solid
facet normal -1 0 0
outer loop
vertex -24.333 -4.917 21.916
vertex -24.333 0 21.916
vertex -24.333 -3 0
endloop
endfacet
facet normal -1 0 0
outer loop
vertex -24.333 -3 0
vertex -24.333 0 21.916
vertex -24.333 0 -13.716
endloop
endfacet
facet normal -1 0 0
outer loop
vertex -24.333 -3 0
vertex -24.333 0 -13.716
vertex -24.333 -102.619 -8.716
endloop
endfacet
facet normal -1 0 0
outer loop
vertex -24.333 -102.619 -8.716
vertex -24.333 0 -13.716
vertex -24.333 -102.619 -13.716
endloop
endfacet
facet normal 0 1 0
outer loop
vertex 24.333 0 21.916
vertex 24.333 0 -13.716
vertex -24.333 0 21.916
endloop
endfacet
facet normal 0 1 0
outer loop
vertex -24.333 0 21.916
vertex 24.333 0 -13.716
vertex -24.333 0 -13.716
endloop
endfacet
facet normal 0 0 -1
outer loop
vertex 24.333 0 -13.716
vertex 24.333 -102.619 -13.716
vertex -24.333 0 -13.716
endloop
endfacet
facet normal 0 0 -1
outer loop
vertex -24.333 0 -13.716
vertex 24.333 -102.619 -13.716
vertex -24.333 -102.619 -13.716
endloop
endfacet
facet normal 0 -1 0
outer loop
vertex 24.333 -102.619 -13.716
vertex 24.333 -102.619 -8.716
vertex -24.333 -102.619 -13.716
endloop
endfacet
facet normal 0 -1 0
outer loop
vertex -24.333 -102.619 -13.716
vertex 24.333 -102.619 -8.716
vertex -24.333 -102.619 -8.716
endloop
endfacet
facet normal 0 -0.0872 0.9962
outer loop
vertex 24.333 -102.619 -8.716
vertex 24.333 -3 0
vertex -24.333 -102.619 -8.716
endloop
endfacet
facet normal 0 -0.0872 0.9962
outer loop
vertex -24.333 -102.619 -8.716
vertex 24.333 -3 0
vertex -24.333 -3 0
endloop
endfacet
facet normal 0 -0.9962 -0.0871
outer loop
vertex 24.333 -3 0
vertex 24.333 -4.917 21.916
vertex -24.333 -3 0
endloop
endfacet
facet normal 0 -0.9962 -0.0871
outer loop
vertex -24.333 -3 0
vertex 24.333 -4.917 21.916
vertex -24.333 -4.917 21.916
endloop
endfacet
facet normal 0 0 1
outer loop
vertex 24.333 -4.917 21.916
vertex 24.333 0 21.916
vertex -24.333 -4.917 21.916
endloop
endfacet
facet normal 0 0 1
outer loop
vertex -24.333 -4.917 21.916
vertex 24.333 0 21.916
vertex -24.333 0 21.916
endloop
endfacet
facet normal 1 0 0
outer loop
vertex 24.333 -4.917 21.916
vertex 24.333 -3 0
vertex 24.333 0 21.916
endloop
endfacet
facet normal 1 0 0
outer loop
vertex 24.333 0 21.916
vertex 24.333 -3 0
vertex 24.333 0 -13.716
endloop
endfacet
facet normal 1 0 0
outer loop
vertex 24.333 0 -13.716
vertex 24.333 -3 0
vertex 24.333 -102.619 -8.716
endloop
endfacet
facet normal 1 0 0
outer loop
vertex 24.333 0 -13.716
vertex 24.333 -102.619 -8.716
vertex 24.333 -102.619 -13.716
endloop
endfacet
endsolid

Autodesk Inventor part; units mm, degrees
ref_plane "YZ Plane" through (0, 0, 0) normal (1, 0, 0) x (0, 1, 0)
ref_plane "XZ Plane" through (0, 0, 0) normal (0, 1, 0) x (-1, 0, 0)
ref_plane "XY Plane" through (0, 0, 0) normal (0, 0, 1) x (1, 0, 0)
sketch "Sketch1" plane through (0, 0, 0) normal (1, 0, 0) x (0, 1, 0)
  line L0 (0, 21.9163) -> (-204, 21.9163)
  line L1 (-204, 21.9163) -> (-204, -13.7156)
  line L2 (-204, -13.7156) -> (0, -13.7156)
  line L3 (0, -13.7156) -> (0, 21.9163)
  line L4 (-4.9174, 21.9163) -> (-3, 0)
  line L5 (-3, 0) -> (-102.6195, -8.7156)
  line L6 (-102.6195, -8.7156) -> (-102.6195, -13.7156)
  line L7 (-102.6195, -13.7156) -> (0, -13.7156)
  point P0 (0, 0)
  dimension "d0" = 204
  dimension "d2" = 22
  dimension "d3" = 85
  dimension "d5" = 3
  dimension "d6" = 100
  dimension "d7" = 5
extrude "Extrusion1" add sketch "Sketch1" along normal mid plane 48.6667 contours L3 L2 L6 L5 L4 L0
properties part number "stand"
